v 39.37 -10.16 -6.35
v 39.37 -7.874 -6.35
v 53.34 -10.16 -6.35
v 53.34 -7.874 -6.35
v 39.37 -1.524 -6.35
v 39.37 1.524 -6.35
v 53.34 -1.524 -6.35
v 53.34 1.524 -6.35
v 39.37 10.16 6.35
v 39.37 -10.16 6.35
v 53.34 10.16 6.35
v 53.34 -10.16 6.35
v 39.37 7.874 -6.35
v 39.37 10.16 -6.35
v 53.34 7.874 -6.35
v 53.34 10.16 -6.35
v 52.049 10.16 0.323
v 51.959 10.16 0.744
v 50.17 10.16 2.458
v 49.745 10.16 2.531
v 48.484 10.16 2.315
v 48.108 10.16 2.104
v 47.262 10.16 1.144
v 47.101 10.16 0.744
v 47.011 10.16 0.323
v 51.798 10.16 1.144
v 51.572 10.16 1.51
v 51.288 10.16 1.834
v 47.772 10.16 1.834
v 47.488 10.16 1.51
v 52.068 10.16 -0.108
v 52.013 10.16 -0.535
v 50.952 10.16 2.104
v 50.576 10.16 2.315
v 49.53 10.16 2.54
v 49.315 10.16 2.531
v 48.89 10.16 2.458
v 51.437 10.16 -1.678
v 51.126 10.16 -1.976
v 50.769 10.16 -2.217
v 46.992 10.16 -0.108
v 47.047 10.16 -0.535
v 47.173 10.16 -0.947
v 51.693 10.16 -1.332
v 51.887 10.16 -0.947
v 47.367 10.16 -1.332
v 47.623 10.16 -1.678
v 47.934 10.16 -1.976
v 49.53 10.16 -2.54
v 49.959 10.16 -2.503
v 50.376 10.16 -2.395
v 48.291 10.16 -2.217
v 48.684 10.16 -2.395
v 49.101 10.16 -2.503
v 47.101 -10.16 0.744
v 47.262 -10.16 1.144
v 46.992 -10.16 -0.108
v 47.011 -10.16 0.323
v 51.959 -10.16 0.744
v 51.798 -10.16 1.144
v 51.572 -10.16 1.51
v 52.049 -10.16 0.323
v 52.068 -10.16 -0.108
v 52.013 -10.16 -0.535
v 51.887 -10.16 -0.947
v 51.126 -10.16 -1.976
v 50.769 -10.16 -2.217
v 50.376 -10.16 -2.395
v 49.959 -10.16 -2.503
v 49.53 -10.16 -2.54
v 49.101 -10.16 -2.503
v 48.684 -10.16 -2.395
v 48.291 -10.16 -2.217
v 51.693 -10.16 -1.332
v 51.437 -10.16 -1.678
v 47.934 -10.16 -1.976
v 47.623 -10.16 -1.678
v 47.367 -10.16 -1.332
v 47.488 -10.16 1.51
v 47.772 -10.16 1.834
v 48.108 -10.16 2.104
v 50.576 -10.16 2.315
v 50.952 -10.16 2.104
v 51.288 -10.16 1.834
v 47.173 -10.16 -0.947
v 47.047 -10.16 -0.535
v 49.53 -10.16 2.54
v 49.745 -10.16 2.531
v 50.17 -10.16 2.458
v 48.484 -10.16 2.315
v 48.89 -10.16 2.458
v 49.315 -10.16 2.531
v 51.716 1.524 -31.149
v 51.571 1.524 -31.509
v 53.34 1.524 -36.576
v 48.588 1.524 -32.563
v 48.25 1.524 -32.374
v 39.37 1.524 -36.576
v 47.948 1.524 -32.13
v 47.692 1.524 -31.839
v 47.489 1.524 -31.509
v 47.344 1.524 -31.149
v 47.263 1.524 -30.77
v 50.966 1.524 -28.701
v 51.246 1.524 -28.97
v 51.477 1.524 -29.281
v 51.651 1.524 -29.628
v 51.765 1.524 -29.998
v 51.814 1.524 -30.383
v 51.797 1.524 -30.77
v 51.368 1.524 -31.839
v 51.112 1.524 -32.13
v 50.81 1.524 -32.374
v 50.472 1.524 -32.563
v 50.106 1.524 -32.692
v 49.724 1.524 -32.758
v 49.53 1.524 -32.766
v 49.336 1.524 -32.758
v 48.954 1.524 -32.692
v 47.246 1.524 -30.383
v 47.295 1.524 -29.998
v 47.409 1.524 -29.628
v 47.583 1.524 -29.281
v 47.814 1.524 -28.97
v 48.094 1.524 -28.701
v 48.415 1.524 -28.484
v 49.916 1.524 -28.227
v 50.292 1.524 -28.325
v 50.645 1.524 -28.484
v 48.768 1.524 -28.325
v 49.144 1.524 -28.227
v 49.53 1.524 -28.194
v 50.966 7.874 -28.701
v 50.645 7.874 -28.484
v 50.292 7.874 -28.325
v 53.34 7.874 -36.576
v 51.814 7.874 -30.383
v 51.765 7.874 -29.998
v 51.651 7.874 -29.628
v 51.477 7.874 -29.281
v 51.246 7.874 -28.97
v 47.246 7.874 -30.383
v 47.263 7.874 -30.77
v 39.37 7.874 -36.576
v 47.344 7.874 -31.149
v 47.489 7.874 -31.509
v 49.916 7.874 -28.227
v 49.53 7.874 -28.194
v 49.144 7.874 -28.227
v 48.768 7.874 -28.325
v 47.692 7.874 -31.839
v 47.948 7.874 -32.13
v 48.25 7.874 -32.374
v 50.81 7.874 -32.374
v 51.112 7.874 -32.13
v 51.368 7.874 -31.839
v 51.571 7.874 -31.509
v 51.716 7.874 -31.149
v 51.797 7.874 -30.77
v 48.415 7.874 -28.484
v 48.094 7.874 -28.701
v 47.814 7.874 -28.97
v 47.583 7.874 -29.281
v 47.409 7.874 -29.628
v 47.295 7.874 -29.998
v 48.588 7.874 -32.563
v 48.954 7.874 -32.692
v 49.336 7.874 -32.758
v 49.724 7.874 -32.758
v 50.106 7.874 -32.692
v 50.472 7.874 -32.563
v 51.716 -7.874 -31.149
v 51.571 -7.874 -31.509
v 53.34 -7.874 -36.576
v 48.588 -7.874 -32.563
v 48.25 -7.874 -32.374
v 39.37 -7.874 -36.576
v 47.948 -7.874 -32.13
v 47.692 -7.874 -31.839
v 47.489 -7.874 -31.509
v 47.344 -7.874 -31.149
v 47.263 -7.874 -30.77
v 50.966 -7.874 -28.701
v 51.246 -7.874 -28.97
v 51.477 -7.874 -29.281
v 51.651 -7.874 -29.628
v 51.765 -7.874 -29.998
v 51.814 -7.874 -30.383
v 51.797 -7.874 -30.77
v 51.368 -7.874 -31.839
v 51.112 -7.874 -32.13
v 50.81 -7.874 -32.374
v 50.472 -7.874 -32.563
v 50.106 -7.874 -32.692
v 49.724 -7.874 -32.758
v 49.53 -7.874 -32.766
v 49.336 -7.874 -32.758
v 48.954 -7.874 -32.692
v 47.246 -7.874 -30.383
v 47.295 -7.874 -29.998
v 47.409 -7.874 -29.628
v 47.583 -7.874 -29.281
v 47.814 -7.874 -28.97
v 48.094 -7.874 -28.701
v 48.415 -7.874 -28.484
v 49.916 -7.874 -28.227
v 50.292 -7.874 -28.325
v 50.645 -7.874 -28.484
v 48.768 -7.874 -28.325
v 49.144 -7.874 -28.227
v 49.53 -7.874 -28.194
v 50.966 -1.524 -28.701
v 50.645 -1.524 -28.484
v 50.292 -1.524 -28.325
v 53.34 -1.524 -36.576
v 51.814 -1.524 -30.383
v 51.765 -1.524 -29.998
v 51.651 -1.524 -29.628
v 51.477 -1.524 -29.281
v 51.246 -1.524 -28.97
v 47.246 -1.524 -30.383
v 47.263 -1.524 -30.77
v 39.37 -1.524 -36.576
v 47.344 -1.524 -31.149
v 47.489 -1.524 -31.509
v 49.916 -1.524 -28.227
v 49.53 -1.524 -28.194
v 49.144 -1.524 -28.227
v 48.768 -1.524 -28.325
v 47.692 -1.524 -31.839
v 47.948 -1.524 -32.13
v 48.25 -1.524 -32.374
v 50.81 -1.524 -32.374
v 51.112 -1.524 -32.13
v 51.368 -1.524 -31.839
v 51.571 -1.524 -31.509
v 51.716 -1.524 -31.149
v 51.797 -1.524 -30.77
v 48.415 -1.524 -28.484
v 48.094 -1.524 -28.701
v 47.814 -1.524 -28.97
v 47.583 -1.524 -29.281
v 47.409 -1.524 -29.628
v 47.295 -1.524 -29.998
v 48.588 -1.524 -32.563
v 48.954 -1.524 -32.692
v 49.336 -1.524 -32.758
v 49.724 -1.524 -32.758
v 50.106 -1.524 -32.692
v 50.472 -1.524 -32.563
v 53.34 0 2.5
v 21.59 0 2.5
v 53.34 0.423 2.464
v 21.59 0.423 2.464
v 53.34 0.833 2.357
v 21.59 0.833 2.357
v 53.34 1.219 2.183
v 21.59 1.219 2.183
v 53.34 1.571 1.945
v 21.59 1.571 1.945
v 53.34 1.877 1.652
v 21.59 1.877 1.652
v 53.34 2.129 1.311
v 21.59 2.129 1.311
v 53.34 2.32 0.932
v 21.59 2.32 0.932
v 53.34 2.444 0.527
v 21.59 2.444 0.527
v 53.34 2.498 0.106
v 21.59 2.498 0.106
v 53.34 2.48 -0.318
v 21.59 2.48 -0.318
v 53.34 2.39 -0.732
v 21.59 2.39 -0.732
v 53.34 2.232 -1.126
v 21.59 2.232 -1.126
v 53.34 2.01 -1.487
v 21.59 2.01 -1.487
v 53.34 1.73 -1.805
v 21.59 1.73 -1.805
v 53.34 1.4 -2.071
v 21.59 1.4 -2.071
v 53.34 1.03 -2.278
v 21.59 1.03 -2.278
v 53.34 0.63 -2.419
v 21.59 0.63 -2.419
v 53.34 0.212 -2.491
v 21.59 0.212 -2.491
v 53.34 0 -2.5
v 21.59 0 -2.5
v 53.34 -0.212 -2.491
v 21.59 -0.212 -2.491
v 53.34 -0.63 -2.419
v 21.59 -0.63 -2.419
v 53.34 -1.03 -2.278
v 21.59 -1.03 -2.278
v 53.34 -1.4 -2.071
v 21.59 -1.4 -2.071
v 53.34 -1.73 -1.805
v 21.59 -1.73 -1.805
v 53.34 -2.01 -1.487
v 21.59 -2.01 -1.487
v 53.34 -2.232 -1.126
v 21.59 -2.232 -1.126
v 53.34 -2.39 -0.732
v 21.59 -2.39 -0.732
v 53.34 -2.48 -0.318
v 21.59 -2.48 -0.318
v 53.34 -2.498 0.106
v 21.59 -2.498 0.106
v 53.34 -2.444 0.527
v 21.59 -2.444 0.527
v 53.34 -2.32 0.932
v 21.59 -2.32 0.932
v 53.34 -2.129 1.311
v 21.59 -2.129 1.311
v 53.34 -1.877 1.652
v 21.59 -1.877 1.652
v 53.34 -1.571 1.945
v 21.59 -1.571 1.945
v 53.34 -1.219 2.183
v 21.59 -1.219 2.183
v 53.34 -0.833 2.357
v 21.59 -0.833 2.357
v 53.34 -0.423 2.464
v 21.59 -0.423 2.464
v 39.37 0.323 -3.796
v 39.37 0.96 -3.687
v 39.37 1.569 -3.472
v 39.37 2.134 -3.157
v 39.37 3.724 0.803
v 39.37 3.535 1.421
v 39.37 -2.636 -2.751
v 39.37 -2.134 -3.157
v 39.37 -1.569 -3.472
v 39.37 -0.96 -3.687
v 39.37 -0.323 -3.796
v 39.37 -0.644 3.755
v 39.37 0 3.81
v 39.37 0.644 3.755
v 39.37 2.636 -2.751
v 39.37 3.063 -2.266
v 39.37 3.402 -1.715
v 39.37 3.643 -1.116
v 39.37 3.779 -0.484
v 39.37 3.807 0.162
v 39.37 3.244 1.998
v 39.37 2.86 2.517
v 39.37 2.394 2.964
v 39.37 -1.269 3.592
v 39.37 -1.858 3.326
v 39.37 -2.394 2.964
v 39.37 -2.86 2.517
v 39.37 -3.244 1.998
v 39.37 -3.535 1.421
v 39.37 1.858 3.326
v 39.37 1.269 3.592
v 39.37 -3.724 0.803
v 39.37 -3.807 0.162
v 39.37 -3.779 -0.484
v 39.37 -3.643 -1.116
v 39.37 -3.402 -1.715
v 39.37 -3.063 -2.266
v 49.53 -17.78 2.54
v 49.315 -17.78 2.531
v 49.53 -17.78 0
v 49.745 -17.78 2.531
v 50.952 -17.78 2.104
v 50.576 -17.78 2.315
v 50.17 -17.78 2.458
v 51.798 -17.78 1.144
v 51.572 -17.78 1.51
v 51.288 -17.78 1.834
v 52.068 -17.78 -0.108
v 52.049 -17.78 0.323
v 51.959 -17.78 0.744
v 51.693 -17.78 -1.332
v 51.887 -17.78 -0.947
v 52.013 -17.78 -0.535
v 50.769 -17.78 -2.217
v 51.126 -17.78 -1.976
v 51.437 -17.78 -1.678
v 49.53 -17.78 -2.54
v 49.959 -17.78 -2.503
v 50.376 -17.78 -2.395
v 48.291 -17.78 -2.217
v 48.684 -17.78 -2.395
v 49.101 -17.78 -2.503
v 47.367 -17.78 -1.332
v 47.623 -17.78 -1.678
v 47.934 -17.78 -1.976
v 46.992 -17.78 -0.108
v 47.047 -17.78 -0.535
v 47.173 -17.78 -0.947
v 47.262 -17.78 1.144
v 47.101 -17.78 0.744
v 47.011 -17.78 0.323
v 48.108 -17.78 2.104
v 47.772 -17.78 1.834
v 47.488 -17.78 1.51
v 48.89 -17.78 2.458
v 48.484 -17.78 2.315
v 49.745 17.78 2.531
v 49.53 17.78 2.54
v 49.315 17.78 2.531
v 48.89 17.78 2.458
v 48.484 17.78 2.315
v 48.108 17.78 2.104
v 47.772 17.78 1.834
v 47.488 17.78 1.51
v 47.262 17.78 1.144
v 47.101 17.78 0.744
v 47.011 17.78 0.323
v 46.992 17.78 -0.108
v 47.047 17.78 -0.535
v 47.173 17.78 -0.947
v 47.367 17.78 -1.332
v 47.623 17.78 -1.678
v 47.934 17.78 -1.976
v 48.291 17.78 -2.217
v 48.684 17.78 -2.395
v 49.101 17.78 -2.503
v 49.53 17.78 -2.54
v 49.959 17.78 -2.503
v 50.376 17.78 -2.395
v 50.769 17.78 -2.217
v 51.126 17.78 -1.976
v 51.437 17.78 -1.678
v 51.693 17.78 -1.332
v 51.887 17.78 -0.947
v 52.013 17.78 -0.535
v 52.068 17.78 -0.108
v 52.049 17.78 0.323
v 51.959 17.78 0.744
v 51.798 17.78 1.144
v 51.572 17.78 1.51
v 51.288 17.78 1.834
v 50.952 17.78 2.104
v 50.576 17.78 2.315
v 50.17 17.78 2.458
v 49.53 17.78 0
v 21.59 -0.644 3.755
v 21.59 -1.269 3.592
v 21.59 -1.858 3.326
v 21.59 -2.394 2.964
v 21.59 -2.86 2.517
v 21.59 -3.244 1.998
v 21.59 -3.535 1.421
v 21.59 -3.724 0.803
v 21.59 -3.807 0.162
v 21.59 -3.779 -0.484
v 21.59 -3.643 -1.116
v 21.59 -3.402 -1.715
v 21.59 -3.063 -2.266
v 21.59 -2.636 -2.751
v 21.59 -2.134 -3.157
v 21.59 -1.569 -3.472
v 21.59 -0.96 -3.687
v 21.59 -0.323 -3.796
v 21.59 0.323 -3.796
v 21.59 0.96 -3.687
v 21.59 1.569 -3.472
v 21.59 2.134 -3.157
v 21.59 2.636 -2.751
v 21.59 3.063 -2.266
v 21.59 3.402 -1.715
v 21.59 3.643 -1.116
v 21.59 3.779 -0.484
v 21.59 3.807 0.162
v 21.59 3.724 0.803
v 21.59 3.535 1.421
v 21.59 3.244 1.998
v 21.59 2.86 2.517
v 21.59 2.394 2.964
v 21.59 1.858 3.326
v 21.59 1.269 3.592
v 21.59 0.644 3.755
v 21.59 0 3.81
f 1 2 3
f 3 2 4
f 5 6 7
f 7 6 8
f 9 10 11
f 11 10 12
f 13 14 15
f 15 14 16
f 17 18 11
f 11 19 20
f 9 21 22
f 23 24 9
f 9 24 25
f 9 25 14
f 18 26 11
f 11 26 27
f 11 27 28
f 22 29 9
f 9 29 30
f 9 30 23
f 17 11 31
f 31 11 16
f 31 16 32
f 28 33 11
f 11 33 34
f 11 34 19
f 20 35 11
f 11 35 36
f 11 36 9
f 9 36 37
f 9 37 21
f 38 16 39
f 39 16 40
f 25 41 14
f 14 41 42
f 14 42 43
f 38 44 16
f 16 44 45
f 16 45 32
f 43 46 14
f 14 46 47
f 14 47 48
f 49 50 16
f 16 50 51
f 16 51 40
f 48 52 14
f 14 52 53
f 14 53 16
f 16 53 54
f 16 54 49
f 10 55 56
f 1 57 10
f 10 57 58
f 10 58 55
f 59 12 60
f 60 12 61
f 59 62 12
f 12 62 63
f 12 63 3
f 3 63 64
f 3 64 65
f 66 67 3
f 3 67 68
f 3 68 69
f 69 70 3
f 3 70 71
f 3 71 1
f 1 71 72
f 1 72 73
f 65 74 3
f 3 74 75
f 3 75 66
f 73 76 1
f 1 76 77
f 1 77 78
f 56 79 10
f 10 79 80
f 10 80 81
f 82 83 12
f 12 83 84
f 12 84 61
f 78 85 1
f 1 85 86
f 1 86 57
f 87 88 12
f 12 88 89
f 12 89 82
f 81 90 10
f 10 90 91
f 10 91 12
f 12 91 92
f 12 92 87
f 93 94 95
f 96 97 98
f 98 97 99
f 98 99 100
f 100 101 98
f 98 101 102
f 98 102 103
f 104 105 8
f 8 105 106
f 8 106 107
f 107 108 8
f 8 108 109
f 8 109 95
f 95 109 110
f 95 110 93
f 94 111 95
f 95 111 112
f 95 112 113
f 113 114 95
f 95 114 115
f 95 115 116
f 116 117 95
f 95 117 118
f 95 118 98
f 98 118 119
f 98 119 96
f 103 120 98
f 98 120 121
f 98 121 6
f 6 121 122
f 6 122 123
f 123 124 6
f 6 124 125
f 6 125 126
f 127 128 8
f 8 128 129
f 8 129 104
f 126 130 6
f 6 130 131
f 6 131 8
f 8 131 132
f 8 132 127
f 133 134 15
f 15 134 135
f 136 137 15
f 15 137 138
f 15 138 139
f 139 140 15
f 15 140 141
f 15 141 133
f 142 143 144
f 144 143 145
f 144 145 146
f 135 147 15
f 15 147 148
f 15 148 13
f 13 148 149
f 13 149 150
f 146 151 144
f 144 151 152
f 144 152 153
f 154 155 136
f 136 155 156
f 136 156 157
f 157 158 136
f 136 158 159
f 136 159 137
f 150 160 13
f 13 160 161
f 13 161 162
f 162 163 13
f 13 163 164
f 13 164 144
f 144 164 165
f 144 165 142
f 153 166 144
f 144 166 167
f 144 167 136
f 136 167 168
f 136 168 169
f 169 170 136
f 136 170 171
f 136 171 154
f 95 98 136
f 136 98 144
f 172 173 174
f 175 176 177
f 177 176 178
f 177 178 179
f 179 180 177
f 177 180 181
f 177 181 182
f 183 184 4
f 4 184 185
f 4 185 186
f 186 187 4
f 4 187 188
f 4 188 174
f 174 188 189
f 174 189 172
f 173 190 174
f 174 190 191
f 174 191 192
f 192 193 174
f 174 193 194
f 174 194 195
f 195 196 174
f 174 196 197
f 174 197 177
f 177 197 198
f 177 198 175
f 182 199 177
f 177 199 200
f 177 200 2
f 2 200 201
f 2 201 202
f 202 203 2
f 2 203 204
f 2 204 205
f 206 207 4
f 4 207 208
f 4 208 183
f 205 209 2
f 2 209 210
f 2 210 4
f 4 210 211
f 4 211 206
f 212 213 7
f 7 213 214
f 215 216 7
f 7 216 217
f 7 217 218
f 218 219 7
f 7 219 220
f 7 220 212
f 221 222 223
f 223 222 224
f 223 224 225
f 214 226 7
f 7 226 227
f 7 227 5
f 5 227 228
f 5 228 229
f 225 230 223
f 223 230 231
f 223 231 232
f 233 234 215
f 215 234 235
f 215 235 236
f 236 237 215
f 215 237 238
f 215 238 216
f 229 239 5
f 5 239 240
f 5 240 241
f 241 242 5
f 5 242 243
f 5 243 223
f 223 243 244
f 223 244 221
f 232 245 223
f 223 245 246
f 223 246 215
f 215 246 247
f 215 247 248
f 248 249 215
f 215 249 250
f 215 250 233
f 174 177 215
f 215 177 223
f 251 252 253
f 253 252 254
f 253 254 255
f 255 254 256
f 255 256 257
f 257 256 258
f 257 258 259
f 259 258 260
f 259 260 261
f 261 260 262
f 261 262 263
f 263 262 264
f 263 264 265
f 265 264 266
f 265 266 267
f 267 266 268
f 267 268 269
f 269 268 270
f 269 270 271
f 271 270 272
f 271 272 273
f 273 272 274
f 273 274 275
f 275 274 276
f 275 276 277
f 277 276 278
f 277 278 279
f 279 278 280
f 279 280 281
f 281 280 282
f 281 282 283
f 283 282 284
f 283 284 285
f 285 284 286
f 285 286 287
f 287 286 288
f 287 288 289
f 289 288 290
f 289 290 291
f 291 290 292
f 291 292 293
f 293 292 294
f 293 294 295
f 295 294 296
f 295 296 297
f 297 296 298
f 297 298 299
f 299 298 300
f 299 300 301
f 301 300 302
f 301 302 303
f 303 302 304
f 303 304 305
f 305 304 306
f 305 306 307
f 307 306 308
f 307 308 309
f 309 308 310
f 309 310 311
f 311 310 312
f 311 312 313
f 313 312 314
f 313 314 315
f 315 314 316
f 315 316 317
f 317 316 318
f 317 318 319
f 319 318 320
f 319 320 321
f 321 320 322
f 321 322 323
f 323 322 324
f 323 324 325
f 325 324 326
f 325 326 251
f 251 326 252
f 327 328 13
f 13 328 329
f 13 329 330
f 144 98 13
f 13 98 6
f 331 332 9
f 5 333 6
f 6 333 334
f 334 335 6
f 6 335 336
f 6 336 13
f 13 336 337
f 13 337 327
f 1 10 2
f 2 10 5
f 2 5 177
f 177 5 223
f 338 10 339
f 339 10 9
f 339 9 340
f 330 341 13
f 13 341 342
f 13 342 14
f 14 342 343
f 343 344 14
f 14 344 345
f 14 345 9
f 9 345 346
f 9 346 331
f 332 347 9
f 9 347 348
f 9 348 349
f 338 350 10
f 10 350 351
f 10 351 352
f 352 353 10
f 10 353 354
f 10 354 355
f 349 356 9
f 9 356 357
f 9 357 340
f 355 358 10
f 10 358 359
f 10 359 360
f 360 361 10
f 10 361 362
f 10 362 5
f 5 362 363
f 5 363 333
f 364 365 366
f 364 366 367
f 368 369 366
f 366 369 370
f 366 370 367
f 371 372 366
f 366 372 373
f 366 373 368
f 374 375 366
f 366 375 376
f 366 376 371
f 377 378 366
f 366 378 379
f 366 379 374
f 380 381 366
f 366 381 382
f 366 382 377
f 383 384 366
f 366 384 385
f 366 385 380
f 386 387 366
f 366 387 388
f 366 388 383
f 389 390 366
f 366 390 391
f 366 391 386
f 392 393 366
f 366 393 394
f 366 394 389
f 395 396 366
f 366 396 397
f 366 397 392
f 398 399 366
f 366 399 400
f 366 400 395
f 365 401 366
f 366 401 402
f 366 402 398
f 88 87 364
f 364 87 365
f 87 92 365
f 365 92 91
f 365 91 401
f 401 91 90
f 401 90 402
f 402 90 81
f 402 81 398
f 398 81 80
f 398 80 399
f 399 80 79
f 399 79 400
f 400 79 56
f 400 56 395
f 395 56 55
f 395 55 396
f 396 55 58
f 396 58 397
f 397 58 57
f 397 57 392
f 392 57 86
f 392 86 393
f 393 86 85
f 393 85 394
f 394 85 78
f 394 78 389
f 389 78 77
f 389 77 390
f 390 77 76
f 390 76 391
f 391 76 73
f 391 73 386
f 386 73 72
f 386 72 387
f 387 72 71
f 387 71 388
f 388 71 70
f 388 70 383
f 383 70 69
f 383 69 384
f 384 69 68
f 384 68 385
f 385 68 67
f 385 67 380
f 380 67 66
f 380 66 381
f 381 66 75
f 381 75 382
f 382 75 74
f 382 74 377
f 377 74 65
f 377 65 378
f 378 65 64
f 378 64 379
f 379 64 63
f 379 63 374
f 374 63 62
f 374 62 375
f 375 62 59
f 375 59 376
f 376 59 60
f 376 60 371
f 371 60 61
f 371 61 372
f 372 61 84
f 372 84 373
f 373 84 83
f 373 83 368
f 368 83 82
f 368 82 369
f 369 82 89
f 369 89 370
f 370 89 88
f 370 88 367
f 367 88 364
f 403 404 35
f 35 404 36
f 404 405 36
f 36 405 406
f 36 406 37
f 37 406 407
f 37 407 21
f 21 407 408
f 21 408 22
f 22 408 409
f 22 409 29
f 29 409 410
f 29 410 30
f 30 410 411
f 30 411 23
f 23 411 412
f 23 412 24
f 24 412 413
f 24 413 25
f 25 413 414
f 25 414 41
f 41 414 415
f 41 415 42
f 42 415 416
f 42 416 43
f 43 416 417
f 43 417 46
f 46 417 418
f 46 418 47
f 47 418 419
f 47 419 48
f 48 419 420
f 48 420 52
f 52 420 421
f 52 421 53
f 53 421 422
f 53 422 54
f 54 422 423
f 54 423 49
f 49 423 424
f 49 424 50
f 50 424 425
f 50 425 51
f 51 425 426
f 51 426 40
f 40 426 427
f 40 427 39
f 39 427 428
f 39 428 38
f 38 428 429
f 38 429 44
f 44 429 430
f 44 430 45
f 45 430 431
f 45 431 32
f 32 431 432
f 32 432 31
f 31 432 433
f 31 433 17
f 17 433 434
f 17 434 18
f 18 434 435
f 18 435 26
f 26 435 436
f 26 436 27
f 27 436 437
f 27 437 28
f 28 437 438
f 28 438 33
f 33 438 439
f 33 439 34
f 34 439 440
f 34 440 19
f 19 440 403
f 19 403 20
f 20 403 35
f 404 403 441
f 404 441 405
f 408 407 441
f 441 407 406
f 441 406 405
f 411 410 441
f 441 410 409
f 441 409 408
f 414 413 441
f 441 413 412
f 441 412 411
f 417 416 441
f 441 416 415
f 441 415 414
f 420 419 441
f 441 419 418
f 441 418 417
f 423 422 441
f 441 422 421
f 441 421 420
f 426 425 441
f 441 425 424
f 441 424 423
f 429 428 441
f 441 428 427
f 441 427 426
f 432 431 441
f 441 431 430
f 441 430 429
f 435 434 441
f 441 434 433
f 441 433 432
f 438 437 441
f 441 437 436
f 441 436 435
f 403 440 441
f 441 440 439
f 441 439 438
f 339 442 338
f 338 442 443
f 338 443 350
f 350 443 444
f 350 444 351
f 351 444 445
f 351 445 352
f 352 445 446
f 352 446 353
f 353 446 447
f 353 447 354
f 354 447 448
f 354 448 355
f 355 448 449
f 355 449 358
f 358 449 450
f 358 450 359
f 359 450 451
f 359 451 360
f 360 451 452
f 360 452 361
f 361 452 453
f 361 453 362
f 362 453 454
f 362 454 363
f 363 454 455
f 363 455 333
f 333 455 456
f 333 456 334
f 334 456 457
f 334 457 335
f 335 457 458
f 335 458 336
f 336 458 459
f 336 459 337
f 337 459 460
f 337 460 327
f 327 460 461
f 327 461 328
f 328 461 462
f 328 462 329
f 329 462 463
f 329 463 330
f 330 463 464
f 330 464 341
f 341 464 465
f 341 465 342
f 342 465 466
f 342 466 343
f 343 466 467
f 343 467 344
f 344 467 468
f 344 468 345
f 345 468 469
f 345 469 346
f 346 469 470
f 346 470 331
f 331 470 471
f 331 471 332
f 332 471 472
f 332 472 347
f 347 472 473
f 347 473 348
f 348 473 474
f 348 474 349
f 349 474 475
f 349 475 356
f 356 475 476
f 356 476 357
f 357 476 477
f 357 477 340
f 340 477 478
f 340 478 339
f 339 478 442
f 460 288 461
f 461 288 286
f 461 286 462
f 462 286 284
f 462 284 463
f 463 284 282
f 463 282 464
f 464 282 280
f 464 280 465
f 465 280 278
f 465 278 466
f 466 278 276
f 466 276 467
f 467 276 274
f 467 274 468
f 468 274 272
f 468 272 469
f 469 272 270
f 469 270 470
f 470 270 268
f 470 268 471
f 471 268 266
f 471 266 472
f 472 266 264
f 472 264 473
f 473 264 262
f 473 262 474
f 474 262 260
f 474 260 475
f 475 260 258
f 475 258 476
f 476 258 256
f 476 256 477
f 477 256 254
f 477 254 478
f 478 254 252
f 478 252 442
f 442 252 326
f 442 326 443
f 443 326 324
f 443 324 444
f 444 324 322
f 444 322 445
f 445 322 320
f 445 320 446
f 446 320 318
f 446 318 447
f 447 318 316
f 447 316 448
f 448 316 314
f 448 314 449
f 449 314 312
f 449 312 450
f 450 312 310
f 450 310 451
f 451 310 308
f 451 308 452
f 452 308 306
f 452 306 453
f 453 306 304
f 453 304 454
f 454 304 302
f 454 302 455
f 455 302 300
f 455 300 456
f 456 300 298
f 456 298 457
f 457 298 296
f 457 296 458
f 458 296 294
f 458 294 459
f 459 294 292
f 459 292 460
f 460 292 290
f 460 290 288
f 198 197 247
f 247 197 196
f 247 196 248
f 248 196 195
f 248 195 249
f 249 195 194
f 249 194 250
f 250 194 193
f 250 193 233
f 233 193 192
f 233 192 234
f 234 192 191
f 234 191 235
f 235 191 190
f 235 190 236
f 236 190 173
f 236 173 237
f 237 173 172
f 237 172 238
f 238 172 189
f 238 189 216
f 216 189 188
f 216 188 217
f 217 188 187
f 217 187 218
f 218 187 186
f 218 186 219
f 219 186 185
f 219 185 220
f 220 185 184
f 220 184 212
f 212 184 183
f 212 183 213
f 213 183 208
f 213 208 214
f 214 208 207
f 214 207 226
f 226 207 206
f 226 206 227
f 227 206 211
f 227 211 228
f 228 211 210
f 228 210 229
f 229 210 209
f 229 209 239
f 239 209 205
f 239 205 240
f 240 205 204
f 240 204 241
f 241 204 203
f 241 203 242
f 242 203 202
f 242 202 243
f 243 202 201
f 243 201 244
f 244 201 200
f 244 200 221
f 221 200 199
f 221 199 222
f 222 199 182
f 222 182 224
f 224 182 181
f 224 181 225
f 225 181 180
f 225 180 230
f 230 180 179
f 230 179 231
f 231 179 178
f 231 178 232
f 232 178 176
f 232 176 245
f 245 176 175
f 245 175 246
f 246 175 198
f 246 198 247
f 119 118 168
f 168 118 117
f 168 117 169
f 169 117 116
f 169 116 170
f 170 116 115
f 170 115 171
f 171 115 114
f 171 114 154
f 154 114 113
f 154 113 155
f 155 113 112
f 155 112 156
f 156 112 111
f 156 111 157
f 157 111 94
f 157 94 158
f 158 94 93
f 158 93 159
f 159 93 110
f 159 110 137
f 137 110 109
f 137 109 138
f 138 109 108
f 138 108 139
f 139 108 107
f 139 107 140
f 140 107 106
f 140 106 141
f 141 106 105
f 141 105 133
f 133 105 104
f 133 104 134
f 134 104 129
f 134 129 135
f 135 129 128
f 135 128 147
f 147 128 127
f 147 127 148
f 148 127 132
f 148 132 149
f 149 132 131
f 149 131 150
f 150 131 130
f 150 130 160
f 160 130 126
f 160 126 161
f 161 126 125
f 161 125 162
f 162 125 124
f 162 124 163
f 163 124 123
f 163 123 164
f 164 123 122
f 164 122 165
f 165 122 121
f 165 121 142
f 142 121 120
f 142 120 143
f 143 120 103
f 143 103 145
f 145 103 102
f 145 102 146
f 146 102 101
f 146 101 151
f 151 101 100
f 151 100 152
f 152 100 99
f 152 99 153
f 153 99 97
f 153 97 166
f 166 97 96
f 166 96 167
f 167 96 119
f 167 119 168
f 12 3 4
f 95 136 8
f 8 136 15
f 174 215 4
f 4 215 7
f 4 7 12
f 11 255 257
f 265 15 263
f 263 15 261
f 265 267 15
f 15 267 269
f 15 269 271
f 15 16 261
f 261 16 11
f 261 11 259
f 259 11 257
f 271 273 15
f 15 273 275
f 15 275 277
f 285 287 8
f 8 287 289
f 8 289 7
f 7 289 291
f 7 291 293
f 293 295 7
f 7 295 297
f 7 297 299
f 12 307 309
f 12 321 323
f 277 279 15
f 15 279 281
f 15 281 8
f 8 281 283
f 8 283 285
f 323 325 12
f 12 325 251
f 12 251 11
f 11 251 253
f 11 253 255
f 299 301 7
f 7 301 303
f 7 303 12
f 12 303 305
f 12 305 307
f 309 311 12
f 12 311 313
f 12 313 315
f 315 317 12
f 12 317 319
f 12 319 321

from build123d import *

# Parameters (mm, degrees)
SKETCH1_W           = 13.97
SKETCH1_H           = 12.7
BOSS_EXTRUDE1_DEPTH = 10.16
SKETCH1_3_R         = 2.54
BOSS_EXTRUDE2_DEPTH = 17.78
BOSS_EXTRUDE3_START = 53.34
SKETCH2_R           = 3.81
BOSS_EXTRUDE3_DEPTH = 31.75
BOSS_EXTRUDE4_START = 53.34
SKETCH3_W           = 30.48
SKETCH3_H           = 6.35
BOSS_EXTRUDE4_DEPTH = 13.97
CUT_EXTRUDE1_START  = -1
SKETCH4_R           = 2.5
CUT_EXTRUDE1_DEPTH  = 87.09
SKETCH6_R           = 2.286
CUT_EXTRUDE3_DEPTH  = 18.78
SKETCH5_W           = 115.291364872
SKETCH5_H           = 73.621660508
CUT_EXTRUDE2_DEPTH  = 32.75


with BuildPart() as part:
    # Sketch1 → Boss-Extrude1 (new body, symmetric)
    with BuildSketch(Plane(origin=(0, 0, 0), x_dir=(1, 0, 0), z_dir=(0, 1, 0))):
        with Locations((60.325, 0)):
            Rectangle(SKETCH1_W, SKETCH1_H)
    boss_extrude1 = extrude(amount=BOSS_EXTRUDE1_DEPTH, both=True)

    # Sketch1_3 → Boss-Extrude2 (add, symmetric)
    with BuildSketch(Plane(origin=(0, 0, 0), x_dir=(1, 0, 0), z_dir=(0, 1, 0))):
        with Locations((57.15, 0)):
            Circle(SKETCH1_3_R)
    boss_extrude2 = extrude(amount=BOSS_EXTRUDE2_DEPTH, both=True)

    # Sketch2 → Boss-Extrude3 (add)
    with BuildSketch(Plane(origin=(0, 0, 0), x_dir=(0, 0, -1), z_dir=(1, 0, 0)).offset(BOSS_EXTRUDE3_START)):
        Circle(SKETCH2_R)
    boss_extrude3 = extrude(amount=BOSS_EXTRUDE3_DEPTH)

    # Sketch3 → Boss-Extrude4 (add)
    with BuildSketch(Plane(origin=(0, 0, 0), x_dir=(0, 0, -1), z_dir=(1, 0, 0)).offset(BOSS_EXTRUDE4_START)):
        with Locations((21.336, 4.699)):
            Rectangle(SKETCH3_W, SKETCH3_H)
        with Locations((21.336, -4.699)):
            Rectangle(SKETCH3_W, SKETCH3_H)
    boss_extrude4 = extrude(amount=BOSS_EXTRUDE4_DEPTH)

    # Sketch4 → Cut-Extrude1 (cut)
    with BuildSketch(Plane(origin=(0, 0, 0), x_dir=(0, 0, -1), z_dir=(1, 0, 0)).offset(CUT_EXTRUDE1_START)):
        Circle(SKETCH4_R)
    cut_extrude1 = extrude(amount=CUT_EXTRUDE1_DEPTH, mode=Mode.SUBTRACT)

    # Sketch6 → Cut-Extrude3 (cut, symmetric)
    with BuildSketch(Plane(origin=(0, 0, 0), x_dir=(1, 0, 0), z_dir=(0, 1, 0))):
        with Locations((57.15, 30.48)):
            Circle(SKETCH6_R)
    cut_extrude3 = extrude(amount=CUT_EXTRUDE3_DEPTH, both=True, mode=Mode.SUBTRACT)

    # Mirror11: Boss-Extrude1, Boss-Extrude2, Boss-Extrude3, Boss-Extrude4, Cut-Extrude1, Cut-Extrude3 across plane
    add(boss_extrude1.mirror(Plane(origin=(53.34, 10.16, -6.35), x_dir=(0, 0, 1), z_dir=(1, 0, 0))))
    add(boss_extrude2.mirror(Plane(origin=(53.34, 10.16, -6.35), x_dir=(0, 0, 1), z_dir=(1, 0, 0))))
    add(boss_extrude3.mirror(Plane(origin=(53.34, 10.16, -6.35), x_dir=(0, 0, 1), z_dir=(1, 0, 0))))
    add(boss_extrude4.mirror(Plane(origin=(53.34, 10.16, -6.35), x_dir=(0, 0, 1), z_dir=(1, 0, 0))))
    add(cut_extrude1.mirror(Plane(origin=(53.34, 10.16, -6.35), x_dir=(0, 0, 1), z_dir=(1, 0, 0))), mode=Mode.SUBTRACT)
    add(cut_extrude3.mirror(Plane(origin=(53.34, 10.16, -6.35), x_dir=(0, 0, 1), z_dir=(1, 0, 0))), mode=Mode.SUBTRACT)

    # Sketch5 → Cut-Extrude2 (cut, through all)
    with BuildSketch(Plane(origin=(53.34, 0, 0), x_dir=(0, 0, -1), z_dir=(1, 0, 0))):
        with Locations((14.102354185, -2.798711487)):
            Rectangle(SKETCH5_W, SKETCH5_H)
    extrude(amount=CUT_EXTRUDE2_DEPTH, mode=Mode.SUBTRACT)


solid = part.part
